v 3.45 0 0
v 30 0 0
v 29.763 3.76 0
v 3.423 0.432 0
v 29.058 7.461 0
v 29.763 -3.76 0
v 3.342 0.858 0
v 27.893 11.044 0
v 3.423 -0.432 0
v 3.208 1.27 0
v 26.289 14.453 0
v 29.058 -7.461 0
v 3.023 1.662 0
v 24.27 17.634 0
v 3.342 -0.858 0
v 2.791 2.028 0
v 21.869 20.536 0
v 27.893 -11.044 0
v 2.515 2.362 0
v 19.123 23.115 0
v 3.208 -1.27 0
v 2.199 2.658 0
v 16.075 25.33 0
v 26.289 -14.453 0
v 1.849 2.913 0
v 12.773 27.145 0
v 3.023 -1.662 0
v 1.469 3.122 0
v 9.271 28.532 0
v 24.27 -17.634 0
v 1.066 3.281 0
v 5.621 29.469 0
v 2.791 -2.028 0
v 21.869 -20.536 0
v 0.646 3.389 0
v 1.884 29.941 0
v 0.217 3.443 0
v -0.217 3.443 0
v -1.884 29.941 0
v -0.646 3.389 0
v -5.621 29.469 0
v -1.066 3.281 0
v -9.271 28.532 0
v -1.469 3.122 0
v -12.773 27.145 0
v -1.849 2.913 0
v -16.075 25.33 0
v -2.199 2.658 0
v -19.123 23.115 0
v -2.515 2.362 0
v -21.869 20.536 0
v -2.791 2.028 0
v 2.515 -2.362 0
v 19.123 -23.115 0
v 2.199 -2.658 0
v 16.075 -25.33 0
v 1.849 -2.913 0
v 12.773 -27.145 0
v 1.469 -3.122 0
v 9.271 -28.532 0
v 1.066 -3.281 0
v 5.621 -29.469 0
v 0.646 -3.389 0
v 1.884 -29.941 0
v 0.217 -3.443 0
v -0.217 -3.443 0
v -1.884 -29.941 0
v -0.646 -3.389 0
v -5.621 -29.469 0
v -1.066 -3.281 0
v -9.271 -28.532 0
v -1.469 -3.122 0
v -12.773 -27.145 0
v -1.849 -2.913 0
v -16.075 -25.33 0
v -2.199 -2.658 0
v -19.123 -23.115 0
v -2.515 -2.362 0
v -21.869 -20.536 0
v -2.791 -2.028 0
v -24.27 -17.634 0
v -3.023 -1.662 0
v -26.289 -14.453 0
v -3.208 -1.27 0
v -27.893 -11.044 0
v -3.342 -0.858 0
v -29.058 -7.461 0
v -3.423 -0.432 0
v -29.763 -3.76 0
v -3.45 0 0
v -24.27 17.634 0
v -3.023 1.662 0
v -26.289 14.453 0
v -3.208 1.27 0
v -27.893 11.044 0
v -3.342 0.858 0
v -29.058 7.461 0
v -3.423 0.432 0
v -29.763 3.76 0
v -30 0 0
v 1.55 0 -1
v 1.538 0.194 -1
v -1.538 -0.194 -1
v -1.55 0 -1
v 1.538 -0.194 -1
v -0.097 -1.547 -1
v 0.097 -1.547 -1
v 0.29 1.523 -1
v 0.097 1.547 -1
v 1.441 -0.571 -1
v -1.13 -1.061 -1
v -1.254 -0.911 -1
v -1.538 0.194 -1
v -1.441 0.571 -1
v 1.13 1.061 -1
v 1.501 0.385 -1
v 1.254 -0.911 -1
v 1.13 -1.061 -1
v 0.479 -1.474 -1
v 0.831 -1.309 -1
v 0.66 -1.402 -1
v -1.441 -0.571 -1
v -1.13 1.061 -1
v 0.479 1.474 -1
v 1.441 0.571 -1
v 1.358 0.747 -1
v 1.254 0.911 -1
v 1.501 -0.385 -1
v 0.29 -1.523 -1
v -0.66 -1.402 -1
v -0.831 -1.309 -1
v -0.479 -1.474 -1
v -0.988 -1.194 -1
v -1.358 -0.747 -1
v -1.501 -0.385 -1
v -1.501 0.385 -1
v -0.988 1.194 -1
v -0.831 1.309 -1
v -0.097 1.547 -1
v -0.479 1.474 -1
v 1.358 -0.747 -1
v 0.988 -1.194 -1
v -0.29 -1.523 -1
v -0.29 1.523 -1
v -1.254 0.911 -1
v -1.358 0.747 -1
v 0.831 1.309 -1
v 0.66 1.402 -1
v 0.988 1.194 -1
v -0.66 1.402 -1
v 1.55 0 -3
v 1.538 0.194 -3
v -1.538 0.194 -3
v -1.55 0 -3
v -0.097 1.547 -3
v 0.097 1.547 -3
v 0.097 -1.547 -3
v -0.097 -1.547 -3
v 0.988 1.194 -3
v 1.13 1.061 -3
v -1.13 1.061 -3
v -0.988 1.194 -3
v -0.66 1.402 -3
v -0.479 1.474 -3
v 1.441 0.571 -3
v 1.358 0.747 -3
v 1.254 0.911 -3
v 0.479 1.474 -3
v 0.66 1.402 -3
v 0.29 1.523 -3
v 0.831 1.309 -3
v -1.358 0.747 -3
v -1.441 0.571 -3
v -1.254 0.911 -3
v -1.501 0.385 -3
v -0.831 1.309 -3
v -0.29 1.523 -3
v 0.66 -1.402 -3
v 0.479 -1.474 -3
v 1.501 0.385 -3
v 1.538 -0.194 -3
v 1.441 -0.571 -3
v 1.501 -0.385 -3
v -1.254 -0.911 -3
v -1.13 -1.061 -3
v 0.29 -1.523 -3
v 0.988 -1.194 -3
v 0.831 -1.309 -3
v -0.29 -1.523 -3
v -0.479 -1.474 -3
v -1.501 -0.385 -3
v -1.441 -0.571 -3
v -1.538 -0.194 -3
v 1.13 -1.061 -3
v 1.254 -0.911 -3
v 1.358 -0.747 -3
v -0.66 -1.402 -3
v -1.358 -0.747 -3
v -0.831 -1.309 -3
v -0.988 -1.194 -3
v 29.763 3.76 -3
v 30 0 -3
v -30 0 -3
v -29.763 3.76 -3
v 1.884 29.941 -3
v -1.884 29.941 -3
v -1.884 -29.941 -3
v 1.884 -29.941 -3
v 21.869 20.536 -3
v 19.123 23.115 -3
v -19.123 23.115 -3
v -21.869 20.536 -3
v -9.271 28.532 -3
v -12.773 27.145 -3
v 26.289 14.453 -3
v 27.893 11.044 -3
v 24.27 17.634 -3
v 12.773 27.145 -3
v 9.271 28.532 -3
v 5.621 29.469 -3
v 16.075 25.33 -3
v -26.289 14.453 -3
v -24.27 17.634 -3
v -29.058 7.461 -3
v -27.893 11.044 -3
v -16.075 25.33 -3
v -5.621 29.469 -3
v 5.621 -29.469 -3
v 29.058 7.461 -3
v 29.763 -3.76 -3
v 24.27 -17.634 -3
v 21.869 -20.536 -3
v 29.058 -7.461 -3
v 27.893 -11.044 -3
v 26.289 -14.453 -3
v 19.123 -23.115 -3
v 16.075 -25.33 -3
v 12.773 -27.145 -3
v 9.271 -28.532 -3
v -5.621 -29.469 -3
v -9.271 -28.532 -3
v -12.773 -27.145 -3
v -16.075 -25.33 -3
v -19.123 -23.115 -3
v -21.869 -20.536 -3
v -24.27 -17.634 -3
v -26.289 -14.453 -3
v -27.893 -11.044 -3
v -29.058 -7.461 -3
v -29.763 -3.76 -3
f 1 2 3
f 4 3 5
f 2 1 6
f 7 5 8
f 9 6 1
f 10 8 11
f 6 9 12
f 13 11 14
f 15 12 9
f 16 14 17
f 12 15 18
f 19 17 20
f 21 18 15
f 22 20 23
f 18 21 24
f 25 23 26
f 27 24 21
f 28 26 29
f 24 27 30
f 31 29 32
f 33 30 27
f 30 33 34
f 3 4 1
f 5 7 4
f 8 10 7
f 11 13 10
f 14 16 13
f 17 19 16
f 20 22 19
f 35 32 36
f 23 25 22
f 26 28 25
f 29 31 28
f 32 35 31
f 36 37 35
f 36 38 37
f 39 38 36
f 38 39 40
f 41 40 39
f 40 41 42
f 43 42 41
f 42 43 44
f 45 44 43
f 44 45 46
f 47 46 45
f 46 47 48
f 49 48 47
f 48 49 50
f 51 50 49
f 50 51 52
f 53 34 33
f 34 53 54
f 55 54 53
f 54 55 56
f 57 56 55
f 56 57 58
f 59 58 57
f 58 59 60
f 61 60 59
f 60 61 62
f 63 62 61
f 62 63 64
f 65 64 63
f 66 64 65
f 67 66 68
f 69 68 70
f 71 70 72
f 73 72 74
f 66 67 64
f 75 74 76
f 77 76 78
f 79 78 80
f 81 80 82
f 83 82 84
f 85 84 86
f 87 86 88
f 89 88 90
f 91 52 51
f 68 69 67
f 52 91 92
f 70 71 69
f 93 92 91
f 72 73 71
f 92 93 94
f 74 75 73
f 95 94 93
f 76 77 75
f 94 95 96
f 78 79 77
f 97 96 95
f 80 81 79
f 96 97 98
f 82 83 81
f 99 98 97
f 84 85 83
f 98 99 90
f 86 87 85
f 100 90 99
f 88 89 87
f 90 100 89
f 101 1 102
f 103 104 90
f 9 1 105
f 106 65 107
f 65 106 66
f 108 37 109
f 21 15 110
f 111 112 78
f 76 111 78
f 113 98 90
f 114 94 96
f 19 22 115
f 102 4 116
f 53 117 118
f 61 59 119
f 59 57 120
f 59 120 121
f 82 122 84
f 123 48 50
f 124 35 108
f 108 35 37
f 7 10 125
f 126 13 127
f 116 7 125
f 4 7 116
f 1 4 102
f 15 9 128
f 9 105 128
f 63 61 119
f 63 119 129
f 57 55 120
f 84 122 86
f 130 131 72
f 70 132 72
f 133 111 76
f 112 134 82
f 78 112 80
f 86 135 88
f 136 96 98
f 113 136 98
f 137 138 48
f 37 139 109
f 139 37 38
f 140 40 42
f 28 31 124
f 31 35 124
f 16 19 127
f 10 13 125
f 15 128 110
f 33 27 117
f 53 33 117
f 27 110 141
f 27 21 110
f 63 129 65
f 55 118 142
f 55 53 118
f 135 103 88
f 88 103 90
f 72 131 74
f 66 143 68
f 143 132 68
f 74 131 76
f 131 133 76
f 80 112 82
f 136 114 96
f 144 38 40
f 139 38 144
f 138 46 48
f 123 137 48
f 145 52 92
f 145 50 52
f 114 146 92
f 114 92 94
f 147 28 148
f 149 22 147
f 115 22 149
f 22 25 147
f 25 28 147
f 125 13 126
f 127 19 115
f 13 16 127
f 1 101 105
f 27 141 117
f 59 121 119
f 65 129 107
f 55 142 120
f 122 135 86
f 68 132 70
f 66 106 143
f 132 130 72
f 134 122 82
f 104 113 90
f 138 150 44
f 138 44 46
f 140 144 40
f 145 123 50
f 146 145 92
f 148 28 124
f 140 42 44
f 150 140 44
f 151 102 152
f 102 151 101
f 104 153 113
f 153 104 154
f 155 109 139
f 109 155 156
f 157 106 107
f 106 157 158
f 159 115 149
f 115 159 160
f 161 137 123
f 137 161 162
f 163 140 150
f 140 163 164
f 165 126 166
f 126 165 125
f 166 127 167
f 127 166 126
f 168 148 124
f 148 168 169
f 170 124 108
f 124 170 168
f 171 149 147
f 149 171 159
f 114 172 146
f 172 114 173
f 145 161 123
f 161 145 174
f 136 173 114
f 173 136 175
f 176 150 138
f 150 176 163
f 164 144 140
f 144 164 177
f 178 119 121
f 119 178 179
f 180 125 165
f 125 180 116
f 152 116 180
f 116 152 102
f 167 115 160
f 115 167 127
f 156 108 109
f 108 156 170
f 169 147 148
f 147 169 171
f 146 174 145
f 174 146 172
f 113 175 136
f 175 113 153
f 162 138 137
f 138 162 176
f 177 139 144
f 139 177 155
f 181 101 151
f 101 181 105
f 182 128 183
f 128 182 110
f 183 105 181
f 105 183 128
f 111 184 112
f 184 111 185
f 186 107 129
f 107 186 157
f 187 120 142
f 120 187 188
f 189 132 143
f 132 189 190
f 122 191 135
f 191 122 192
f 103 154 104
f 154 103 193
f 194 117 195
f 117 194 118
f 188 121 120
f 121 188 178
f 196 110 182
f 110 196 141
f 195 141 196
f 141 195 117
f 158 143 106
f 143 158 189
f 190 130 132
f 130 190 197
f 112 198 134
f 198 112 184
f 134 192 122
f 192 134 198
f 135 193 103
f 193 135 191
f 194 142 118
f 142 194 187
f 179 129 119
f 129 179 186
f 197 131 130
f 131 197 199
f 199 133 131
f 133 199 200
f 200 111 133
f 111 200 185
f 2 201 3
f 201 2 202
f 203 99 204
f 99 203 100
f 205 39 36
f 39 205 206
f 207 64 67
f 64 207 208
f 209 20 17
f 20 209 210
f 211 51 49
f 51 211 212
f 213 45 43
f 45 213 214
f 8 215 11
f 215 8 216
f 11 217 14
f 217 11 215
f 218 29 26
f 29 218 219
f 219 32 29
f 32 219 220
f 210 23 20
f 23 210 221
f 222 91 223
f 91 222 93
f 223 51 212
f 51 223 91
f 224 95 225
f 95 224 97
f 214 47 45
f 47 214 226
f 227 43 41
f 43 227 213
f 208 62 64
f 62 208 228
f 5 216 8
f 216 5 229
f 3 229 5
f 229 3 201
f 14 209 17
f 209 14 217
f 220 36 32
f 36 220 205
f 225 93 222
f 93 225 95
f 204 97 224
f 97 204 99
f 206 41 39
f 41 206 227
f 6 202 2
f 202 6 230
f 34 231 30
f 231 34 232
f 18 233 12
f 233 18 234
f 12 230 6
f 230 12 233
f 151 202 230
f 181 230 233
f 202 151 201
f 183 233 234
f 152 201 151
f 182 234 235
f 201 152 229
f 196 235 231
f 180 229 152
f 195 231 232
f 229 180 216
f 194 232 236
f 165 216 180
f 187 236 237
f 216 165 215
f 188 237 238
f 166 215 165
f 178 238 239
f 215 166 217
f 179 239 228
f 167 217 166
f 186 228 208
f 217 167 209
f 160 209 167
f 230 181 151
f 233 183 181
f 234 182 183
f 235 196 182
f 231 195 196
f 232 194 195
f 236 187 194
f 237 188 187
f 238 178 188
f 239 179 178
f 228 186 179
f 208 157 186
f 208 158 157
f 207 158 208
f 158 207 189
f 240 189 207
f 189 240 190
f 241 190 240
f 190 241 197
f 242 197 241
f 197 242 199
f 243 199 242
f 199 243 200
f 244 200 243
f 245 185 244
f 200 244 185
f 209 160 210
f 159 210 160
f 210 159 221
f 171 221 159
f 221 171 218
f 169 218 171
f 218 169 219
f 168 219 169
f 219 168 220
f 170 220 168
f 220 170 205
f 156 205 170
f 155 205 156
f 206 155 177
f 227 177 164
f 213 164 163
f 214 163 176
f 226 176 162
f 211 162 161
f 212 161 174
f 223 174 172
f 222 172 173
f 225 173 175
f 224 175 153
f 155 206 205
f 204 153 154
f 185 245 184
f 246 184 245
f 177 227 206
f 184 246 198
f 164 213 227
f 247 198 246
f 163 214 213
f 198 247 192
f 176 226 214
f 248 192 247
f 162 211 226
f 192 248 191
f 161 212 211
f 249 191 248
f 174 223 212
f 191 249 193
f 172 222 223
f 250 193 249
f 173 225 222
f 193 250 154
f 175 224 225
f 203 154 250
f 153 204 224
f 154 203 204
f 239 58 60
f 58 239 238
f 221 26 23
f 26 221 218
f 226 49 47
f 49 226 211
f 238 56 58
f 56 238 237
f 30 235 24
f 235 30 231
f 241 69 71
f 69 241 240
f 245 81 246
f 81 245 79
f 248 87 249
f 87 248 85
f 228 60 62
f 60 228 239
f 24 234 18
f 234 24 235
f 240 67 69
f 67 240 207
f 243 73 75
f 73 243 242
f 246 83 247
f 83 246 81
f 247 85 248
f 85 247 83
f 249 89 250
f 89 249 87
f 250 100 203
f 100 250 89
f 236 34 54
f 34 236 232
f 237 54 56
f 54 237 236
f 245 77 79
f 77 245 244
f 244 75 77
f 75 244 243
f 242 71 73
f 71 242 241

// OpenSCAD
$fn = 50;

difference() {
	union() {
		translate(v = [0, 0, -3.0]) {
			cylinder(h = 3, r = 30.0);
		}
	}
	union() {
		translate(v = [0, 0, 0]) {
			rotate(a = [0, 0, 0]) {
				difference() {
					union() {
						translate(v = [0, 0, -6.0]) {
							cylinder(h = 6, r = 1.25);
						}
						translate(v = [0, 0, -1.0]) {
							cylinder(h = 1.0, r1 = 1.55, r2 = 3.45);
						}
						translate(v = [0, 0, -6.0]) {
							cylinder(h = 6, r = 1.55);
						}
						translate(v = [0, 0, -6.0]) {
							cylinder(h = 6, r = 1.25);
						}
					}
					union();
				}
			}
		}
	}
}
